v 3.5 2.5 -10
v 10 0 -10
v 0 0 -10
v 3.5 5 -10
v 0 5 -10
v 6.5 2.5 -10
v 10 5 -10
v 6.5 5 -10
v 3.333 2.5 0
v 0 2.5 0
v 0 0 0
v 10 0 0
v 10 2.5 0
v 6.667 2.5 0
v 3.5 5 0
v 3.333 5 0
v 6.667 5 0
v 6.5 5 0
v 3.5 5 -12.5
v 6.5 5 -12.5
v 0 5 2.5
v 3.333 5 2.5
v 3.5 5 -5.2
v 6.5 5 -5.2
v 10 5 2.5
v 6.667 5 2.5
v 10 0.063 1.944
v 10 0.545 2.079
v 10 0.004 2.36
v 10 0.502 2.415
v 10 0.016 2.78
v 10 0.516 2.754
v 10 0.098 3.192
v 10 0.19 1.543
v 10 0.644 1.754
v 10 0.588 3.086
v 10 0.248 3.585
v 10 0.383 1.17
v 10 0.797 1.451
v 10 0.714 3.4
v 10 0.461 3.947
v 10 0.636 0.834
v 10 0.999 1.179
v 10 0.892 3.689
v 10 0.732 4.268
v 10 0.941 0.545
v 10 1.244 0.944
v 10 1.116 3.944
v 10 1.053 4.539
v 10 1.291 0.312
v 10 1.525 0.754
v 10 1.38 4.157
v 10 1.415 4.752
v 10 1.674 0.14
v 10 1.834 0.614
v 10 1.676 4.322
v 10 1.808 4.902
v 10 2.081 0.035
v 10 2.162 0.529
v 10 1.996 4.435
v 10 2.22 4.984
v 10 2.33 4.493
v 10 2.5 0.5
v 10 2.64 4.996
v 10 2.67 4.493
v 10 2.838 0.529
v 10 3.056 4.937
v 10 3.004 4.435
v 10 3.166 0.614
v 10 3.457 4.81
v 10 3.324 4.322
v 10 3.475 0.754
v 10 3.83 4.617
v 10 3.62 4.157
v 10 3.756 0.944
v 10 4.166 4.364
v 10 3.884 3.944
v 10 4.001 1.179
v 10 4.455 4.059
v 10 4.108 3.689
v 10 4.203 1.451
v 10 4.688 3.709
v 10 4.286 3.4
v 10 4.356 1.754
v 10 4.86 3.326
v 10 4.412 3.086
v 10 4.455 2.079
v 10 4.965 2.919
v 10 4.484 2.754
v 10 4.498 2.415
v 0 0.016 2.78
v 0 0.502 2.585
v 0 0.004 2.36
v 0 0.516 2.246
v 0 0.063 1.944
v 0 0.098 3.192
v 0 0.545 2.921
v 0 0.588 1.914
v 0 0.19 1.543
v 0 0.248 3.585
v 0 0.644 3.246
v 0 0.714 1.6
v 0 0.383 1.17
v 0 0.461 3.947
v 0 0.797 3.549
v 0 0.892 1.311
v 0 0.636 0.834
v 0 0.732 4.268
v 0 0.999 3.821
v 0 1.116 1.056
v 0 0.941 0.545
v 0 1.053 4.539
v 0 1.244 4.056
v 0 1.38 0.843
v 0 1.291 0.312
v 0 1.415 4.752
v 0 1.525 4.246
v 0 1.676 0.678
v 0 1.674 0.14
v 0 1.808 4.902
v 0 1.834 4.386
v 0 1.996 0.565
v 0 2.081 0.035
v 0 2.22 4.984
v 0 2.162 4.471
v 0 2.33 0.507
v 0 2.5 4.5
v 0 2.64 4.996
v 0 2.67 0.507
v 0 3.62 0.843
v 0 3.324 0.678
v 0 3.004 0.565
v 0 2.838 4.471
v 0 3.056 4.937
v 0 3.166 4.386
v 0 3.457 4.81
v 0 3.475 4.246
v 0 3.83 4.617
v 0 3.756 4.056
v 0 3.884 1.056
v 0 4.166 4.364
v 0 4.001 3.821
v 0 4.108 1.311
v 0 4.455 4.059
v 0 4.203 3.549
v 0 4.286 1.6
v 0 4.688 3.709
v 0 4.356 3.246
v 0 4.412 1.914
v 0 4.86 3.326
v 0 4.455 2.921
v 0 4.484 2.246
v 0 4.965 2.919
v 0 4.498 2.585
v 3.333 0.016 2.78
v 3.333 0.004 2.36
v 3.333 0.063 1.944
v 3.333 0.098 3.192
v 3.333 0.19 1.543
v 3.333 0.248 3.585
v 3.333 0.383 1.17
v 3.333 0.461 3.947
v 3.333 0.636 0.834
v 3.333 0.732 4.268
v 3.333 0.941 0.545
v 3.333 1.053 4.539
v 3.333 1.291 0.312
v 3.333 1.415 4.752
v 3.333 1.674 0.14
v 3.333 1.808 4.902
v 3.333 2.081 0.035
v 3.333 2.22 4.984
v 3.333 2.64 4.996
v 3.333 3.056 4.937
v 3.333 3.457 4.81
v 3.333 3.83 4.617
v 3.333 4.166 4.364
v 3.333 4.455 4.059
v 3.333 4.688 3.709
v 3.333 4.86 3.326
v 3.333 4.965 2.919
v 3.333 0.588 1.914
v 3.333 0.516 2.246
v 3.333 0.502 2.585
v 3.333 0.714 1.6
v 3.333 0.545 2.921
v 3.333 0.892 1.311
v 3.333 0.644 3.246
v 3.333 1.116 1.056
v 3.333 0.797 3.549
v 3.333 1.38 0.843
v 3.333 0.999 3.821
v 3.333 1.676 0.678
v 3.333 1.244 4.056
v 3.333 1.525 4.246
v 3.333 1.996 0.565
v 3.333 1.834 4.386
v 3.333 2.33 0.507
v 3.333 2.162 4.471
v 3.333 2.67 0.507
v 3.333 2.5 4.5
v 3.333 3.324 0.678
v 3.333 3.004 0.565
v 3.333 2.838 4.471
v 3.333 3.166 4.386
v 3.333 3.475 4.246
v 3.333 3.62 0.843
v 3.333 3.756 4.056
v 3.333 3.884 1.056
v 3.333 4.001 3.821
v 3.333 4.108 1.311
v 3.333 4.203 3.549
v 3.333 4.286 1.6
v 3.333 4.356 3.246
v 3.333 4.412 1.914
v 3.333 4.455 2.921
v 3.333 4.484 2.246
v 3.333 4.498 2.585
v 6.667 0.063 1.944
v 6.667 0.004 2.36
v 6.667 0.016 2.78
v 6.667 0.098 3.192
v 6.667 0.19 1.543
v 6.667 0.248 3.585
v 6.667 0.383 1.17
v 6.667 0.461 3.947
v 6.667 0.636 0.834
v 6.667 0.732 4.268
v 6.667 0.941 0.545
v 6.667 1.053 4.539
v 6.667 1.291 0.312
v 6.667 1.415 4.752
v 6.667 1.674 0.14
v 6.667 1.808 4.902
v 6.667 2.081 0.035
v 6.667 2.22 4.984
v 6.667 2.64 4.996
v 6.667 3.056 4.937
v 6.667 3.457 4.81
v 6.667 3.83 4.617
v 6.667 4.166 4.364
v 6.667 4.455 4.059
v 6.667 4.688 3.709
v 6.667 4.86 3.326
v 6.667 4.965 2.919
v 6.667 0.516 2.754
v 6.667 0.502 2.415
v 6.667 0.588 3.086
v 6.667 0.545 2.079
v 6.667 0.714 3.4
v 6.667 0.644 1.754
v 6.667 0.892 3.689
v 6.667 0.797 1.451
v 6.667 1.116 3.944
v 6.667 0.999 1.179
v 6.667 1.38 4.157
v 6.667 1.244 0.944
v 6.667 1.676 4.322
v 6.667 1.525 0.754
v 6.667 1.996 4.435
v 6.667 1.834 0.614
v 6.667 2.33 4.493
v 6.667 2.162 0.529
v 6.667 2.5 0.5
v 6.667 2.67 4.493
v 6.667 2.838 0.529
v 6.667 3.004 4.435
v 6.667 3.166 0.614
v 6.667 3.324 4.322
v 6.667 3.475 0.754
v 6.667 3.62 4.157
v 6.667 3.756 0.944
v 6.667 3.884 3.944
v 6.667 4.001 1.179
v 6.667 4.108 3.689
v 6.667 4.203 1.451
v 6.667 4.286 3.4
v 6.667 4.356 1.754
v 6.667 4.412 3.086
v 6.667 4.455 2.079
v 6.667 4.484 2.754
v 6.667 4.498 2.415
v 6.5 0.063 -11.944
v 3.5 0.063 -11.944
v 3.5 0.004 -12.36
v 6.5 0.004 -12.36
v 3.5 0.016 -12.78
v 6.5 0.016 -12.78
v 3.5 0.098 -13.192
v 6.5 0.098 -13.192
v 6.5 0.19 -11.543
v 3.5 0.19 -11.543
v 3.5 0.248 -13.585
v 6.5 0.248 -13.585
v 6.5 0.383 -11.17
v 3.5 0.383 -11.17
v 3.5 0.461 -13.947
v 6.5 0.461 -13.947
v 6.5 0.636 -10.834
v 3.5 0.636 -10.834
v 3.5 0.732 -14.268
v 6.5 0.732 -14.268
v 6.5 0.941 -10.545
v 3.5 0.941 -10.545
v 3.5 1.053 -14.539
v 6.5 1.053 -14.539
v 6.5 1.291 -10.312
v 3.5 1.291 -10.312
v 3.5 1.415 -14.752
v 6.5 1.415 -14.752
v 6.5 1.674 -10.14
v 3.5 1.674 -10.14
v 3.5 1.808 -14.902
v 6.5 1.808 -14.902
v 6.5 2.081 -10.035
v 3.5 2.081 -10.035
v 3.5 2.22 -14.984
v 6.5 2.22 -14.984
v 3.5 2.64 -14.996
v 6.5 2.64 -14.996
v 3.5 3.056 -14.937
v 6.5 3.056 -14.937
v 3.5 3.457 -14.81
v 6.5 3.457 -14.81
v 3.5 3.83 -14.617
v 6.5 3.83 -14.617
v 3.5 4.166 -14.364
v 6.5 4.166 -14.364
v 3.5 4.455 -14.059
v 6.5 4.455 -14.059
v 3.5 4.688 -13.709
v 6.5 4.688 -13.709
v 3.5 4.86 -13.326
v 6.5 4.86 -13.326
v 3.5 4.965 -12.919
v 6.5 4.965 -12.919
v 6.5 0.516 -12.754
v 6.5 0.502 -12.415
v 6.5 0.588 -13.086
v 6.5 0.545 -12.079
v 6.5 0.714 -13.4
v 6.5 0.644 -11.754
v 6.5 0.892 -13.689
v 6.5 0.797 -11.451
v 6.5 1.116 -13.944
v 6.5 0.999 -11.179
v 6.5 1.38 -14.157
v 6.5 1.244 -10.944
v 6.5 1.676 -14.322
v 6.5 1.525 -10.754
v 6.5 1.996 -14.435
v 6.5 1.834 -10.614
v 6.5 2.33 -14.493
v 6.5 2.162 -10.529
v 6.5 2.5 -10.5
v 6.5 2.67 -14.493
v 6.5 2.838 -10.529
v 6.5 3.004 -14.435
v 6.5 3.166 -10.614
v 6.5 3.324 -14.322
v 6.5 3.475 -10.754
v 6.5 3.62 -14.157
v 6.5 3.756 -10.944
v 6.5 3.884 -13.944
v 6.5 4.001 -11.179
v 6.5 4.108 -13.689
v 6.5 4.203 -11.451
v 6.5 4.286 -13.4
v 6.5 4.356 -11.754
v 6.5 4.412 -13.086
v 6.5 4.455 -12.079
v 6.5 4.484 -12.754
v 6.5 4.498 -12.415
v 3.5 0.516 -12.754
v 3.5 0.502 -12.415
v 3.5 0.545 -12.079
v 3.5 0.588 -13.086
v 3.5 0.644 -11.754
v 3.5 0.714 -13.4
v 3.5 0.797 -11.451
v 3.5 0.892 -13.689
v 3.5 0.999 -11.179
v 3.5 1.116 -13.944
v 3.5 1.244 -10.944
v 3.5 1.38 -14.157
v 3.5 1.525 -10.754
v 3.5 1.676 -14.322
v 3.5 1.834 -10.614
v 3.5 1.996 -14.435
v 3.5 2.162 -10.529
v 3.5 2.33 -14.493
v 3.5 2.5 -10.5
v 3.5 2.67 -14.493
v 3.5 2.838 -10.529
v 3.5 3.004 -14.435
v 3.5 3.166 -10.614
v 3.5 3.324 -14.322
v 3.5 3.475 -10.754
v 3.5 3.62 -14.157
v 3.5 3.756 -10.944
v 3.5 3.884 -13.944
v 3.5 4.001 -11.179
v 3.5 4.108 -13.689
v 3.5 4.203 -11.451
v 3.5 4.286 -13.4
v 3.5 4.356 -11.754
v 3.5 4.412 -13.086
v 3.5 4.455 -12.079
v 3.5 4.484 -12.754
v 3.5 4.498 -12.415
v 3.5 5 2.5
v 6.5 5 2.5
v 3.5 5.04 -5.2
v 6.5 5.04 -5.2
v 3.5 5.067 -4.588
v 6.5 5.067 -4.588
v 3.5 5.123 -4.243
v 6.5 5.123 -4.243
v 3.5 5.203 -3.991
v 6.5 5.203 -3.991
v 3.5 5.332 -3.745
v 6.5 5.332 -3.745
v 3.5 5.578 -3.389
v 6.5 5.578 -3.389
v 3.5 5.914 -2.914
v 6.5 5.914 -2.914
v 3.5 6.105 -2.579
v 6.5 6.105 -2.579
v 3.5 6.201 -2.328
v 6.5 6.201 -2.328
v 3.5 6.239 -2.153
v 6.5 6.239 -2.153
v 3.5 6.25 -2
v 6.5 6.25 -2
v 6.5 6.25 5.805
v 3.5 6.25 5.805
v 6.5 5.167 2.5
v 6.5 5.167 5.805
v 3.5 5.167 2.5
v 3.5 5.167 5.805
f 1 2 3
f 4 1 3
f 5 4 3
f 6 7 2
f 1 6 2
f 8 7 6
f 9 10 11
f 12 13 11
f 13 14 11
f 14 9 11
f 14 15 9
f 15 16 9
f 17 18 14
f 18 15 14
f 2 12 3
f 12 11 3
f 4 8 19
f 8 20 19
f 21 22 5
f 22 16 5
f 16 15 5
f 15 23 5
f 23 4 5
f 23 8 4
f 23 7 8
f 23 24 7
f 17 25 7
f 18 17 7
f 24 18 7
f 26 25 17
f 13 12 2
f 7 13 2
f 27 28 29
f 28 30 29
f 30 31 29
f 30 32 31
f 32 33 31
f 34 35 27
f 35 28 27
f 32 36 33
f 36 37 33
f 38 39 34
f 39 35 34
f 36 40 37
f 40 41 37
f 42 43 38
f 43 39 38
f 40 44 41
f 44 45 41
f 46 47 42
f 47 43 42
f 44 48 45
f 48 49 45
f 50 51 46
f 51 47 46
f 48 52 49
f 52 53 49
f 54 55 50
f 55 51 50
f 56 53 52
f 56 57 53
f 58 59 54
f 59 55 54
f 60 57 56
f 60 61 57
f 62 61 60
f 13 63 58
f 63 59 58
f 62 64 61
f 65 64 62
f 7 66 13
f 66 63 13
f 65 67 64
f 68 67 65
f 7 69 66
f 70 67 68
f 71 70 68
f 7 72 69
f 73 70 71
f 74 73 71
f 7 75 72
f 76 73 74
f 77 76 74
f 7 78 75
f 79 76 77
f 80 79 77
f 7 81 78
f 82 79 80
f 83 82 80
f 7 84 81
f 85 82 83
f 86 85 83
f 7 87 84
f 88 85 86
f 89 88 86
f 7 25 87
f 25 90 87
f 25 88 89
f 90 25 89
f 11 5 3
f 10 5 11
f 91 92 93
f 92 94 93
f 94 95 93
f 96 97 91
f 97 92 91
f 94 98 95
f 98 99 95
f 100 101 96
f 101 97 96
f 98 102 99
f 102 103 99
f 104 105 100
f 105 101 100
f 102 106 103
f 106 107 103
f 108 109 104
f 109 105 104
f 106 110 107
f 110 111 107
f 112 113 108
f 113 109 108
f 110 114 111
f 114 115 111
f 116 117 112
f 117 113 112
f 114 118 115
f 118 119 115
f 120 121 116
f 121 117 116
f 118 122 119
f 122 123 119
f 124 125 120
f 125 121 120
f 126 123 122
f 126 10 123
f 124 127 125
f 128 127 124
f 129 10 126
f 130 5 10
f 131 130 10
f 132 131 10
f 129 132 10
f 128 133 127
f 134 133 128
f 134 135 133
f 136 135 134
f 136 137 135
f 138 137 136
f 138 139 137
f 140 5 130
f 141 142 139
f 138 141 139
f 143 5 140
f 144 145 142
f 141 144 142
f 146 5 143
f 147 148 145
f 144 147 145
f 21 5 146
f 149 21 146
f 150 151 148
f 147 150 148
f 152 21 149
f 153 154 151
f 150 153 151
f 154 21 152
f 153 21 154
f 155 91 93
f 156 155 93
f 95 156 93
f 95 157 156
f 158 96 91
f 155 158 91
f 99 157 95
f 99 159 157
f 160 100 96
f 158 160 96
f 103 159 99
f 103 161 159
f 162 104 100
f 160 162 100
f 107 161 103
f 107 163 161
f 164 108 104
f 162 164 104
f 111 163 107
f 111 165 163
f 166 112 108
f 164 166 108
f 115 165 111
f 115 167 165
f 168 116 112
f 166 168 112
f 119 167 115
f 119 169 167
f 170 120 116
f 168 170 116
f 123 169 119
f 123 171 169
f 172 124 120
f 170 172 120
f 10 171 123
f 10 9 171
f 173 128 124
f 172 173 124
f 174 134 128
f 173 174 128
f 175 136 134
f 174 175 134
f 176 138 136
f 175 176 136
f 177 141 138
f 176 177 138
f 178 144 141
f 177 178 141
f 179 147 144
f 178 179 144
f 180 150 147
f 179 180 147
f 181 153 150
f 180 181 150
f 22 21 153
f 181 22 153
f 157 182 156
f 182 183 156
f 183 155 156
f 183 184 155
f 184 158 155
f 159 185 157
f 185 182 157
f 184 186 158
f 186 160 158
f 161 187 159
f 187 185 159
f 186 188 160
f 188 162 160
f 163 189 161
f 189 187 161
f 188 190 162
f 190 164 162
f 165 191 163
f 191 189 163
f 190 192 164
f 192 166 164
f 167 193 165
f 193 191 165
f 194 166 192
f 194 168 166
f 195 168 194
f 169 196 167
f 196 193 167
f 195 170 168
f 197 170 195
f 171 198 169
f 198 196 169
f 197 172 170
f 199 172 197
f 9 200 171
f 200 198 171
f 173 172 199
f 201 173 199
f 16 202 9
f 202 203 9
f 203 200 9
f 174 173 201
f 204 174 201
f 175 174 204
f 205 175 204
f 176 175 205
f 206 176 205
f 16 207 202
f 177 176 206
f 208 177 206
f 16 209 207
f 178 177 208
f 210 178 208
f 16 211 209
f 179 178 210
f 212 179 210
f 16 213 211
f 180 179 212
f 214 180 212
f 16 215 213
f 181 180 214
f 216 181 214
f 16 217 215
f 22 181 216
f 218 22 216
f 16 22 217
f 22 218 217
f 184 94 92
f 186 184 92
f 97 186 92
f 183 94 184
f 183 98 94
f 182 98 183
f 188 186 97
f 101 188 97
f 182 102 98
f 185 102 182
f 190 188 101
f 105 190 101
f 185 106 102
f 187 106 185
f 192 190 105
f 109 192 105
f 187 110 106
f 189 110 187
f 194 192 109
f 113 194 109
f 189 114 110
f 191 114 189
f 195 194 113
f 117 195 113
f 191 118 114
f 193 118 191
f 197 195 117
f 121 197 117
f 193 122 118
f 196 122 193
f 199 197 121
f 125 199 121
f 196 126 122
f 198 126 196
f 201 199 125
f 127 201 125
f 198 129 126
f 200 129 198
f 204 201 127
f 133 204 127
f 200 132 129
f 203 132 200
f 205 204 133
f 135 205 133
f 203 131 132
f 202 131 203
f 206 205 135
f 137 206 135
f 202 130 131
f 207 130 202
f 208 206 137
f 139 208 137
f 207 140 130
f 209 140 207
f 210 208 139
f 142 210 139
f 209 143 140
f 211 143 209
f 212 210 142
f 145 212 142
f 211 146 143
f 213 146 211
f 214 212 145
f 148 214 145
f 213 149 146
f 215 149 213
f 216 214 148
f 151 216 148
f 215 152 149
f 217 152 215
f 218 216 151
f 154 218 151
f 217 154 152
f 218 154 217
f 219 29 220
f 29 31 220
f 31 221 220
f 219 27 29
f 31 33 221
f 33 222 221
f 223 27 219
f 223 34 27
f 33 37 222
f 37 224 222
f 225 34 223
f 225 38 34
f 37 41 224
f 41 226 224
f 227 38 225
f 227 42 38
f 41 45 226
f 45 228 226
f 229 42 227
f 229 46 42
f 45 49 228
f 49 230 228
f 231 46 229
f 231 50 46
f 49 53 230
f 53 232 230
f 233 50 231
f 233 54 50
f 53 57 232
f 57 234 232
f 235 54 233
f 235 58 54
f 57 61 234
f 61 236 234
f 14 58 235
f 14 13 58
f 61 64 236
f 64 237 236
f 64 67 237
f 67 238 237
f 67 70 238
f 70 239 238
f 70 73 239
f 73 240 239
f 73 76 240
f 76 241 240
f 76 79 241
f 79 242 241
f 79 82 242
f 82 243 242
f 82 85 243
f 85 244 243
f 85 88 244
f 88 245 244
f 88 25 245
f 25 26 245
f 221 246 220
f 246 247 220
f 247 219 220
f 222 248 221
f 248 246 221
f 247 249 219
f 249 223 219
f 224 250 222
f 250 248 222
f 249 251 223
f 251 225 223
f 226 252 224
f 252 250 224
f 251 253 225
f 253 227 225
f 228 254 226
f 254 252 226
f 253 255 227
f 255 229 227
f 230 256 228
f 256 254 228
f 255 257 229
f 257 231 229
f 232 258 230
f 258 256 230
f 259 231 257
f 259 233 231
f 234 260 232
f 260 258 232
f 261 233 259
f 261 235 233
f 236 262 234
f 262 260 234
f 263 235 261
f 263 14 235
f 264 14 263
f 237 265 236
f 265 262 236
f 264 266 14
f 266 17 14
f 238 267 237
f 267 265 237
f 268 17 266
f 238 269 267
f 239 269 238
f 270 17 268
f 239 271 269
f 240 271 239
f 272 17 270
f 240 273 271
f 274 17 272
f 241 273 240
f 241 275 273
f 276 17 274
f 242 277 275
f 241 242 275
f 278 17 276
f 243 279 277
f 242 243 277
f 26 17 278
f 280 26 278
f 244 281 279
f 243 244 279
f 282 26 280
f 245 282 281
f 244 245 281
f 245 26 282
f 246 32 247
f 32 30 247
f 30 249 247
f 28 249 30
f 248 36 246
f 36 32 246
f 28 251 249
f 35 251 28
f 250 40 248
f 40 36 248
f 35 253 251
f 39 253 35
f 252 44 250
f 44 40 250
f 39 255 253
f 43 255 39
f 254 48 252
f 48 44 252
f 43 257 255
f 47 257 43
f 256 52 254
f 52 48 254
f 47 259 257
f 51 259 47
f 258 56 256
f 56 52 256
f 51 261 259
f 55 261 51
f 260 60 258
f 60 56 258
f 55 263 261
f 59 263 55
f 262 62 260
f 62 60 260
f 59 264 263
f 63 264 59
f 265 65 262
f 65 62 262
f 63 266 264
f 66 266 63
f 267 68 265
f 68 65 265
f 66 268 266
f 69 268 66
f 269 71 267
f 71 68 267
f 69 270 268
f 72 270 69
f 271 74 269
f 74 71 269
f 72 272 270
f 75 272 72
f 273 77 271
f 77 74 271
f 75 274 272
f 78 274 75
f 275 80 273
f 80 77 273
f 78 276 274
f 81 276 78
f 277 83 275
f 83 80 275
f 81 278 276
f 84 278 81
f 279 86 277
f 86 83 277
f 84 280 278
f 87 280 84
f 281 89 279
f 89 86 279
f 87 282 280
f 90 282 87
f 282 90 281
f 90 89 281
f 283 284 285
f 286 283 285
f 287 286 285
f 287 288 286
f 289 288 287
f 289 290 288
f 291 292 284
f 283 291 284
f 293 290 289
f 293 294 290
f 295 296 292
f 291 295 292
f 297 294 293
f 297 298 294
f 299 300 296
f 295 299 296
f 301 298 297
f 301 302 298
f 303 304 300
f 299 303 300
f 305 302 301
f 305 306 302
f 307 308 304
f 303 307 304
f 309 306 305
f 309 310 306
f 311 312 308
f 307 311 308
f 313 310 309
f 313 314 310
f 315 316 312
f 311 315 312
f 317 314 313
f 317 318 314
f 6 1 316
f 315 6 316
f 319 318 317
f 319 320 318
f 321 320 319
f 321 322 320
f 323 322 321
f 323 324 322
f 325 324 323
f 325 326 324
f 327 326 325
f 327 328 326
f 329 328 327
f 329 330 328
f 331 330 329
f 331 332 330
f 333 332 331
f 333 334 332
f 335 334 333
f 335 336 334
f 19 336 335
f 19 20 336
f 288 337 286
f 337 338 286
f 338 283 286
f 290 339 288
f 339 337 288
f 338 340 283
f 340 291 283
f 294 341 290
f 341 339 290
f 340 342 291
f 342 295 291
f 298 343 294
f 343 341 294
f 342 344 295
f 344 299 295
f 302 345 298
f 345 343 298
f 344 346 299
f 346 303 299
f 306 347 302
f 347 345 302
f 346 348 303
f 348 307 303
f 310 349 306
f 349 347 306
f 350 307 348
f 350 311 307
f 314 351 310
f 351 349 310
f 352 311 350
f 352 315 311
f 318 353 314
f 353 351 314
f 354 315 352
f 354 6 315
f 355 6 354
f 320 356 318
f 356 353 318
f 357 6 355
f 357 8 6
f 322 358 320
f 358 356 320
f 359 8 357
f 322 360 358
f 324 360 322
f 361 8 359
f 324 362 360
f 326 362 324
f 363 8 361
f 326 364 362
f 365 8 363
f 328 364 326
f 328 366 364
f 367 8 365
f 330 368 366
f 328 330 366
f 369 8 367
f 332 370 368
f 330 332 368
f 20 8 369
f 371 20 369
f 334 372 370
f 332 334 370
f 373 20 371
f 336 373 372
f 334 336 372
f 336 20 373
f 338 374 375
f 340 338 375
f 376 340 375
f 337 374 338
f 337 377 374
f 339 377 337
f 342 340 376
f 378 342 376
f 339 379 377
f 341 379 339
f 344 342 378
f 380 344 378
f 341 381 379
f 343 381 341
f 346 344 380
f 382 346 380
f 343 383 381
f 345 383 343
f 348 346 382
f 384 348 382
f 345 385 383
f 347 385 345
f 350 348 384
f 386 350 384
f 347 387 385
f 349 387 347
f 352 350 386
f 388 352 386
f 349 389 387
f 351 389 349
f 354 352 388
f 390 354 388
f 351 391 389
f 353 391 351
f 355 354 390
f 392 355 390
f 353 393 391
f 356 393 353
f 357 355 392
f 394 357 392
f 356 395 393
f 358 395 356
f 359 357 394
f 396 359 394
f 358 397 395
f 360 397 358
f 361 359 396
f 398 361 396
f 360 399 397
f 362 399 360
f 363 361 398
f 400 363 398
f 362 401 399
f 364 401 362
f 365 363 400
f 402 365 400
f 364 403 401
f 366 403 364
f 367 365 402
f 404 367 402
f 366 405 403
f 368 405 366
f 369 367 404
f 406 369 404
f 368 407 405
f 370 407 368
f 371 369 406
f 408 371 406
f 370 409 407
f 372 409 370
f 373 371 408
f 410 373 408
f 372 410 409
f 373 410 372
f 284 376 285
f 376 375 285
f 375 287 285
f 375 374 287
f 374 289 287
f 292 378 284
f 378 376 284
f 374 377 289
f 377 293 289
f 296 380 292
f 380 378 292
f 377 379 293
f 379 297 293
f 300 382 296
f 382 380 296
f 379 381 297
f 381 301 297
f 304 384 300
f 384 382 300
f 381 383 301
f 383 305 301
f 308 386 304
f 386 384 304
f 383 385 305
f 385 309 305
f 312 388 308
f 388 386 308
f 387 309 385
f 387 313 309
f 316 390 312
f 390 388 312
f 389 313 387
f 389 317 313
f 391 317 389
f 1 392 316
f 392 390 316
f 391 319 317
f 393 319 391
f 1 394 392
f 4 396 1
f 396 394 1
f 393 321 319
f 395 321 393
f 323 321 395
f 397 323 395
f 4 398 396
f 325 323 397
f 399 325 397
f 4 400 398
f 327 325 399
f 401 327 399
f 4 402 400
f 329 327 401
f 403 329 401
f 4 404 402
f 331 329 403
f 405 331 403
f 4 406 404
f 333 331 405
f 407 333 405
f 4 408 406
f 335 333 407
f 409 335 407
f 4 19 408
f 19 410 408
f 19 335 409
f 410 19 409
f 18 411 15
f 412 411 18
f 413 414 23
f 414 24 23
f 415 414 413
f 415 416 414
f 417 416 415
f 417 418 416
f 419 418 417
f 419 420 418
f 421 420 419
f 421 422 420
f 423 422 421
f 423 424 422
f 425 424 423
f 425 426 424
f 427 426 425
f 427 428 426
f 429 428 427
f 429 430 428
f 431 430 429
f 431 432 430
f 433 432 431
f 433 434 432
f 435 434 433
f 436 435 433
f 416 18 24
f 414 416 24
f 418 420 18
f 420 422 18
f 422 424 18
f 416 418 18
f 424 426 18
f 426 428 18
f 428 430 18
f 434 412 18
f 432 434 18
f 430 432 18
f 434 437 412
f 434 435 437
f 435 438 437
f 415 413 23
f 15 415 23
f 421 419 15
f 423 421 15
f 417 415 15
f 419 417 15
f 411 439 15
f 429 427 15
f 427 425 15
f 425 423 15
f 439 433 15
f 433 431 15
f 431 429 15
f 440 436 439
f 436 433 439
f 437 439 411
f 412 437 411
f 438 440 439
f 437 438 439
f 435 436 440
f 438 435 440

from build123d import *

# Parameters (mm, degrees)
SKETCH2_W                = 10
SKETCH2_H                = 5
BOSS_EXTRUDE1_DEPTH      = 10
SKETCH3_R                = 2
BOSS_EXTRUDE2_DEPTH      = 3.333333333
BOSS_EXTRUDE3_START      = -3.333333333
SKETCH4_R                = 2
BOSS_EXTRUDE3_DEPTH      = 3.333333333
BOSS_EXTRUDE4_DEPTH      = 1.5
BOSS_EXTRUDE4_DEPTH_BACK = 1.5
SKETCH6_R                = 2
BOSS_EXTRUDE5_DEPTH      = 1.5
BOSS_EXTRUDE5_DEPTH_BACK = 1.5
CUT_EXTRUDE1_DEPTH       = 18.501785659


with BuildPart() as part:
    # Sketch2 → Boss-Extrude1 (new body)
    with BuildSketch(Plane(origin=(0, 0, 0), x_dir=(0, 0, -1), z_dir=(1, 0, 0))):
        with Locations((5, 2.5)):
            Rectangle(SKETCH2_W, SKETCH2_H)
    extrude(amount=BOSS_EXTRUDE1_DEPTH)

    # Sketch3 → Boss-Extrude2 (add)
    with BuildSketch(Plane.ZY):
        with BuildLine():
            Line((2.5, 5), (0, 5))
            Line((0, 5), (0, 2.5))
            ThreePointArc((0, 2.5), (4.267766953, 0.732233047), (2.5, 5))
        make_face()
        with Locations((2.5, 2.5)):
            Circle(SKETCH3_R, mode=Mode.SUBTRACT)
    extrude(amount=-BOSS_EXTRUDE2_DEPTH)

    # Sketch4 → Boss-Extrude3 (add)
    with BuildSketch(Plane(origin=(10, 0, 0), x_dir=(0, 0, -1), z_dir=(1, 0, 0)).offset(BOSS_EXTRUDE3_START)):
        with BuildLine():
            Line((-2.5, 5), (0, 5))
            Line((0, 5), (0, 2.5))
            ThreePointArc((0, 2.5), (-4.267766953, 0.732233047), (-2.5, 5))
        make_face()
        with Locations(Location((-2.5, 2.5, 0), (0, 0, 180))):
            Circle(SKETCH4_R, mode=Mode.SUBTRACT)
    extrude(amount=BOSS_EXTRUDE3_DEPTH)

    # Sketch6 → Boss-Extrude4 (add, two sides: drawn at the far end of the back side and taken through both)
    with BuildSketch(Plane.ZY.offset(-5).offset(-BOSS_EXTRUDE4_DEPTH_BACK)):
        with BuildLine():
            Line((-12.5, 5), (-10, 5))
            Line((-10, 5), (-10, 2.5))
            ThreePointArc((-10, 2.5), (-14.267766953, 0.732233047), (-12.5, 5))
        make_face()
        with Locations((-12.5, 2.5)):
            Circle(SKETCH6_R, mode=Mode.SUBTRACT)
    extrude(amount=BOSS_EXTRUDE4_DEPTH + BOSS_EXTRUDE4_DEPTH_BACK)

    # Sketch8 → Boss-Extrude5 (add, two sides: drawn at the far end of the back side and taken through both)
    with BuildSketch(Plane.ZY.offset(-5).offset(-BOSS_EXTRUDE5_DEPTH_BACK)):
        with BuildLine():
            Line((0, 5), (-2, 5))
            Line((-2, 5), (-5.2, 5))
            Line((-5.2, 5), (-5.2, 5.04))
            add(Edge.make_bspline(
                [(-2, 6.25), (-2.494910157, 6.25), (-3.057241258, 5.810278687), (-3.866517232, 5.241546577), (-4.160995323, 5.04), (-5.2, 5.04)],
                knots=[0, 0, 0, 0, 0.415212535, 0.515212535, 1, 1, 1, 1], degree=3))
            Line((-2, 6.25), (8, 6.25))
            Line((8, 6.25), (8, 5))
            Line((8, 5), (0, 5))
        make_face()
    extrude(amount=BOSS_EXTRUDE5_DEPTH + BOSS_EXTRUDE5_DEPTH_BACK)

    # Sketch9 → Cut-Extrude1 (cut, through all)
    with BuildSketch(Plane.ZY.offset(-3.5)):
        Polygon((8, 6.25), (5.805296546, 6.25), (5.805296546, 5.167226788), (2.5, 5.167226788), (2.5, 5), (8, 5), align=None)
    extrude(amount=-CUT_EXTRUDE1_DEPTH, mode=Mode.SUBTRACT)


solid = part.part
